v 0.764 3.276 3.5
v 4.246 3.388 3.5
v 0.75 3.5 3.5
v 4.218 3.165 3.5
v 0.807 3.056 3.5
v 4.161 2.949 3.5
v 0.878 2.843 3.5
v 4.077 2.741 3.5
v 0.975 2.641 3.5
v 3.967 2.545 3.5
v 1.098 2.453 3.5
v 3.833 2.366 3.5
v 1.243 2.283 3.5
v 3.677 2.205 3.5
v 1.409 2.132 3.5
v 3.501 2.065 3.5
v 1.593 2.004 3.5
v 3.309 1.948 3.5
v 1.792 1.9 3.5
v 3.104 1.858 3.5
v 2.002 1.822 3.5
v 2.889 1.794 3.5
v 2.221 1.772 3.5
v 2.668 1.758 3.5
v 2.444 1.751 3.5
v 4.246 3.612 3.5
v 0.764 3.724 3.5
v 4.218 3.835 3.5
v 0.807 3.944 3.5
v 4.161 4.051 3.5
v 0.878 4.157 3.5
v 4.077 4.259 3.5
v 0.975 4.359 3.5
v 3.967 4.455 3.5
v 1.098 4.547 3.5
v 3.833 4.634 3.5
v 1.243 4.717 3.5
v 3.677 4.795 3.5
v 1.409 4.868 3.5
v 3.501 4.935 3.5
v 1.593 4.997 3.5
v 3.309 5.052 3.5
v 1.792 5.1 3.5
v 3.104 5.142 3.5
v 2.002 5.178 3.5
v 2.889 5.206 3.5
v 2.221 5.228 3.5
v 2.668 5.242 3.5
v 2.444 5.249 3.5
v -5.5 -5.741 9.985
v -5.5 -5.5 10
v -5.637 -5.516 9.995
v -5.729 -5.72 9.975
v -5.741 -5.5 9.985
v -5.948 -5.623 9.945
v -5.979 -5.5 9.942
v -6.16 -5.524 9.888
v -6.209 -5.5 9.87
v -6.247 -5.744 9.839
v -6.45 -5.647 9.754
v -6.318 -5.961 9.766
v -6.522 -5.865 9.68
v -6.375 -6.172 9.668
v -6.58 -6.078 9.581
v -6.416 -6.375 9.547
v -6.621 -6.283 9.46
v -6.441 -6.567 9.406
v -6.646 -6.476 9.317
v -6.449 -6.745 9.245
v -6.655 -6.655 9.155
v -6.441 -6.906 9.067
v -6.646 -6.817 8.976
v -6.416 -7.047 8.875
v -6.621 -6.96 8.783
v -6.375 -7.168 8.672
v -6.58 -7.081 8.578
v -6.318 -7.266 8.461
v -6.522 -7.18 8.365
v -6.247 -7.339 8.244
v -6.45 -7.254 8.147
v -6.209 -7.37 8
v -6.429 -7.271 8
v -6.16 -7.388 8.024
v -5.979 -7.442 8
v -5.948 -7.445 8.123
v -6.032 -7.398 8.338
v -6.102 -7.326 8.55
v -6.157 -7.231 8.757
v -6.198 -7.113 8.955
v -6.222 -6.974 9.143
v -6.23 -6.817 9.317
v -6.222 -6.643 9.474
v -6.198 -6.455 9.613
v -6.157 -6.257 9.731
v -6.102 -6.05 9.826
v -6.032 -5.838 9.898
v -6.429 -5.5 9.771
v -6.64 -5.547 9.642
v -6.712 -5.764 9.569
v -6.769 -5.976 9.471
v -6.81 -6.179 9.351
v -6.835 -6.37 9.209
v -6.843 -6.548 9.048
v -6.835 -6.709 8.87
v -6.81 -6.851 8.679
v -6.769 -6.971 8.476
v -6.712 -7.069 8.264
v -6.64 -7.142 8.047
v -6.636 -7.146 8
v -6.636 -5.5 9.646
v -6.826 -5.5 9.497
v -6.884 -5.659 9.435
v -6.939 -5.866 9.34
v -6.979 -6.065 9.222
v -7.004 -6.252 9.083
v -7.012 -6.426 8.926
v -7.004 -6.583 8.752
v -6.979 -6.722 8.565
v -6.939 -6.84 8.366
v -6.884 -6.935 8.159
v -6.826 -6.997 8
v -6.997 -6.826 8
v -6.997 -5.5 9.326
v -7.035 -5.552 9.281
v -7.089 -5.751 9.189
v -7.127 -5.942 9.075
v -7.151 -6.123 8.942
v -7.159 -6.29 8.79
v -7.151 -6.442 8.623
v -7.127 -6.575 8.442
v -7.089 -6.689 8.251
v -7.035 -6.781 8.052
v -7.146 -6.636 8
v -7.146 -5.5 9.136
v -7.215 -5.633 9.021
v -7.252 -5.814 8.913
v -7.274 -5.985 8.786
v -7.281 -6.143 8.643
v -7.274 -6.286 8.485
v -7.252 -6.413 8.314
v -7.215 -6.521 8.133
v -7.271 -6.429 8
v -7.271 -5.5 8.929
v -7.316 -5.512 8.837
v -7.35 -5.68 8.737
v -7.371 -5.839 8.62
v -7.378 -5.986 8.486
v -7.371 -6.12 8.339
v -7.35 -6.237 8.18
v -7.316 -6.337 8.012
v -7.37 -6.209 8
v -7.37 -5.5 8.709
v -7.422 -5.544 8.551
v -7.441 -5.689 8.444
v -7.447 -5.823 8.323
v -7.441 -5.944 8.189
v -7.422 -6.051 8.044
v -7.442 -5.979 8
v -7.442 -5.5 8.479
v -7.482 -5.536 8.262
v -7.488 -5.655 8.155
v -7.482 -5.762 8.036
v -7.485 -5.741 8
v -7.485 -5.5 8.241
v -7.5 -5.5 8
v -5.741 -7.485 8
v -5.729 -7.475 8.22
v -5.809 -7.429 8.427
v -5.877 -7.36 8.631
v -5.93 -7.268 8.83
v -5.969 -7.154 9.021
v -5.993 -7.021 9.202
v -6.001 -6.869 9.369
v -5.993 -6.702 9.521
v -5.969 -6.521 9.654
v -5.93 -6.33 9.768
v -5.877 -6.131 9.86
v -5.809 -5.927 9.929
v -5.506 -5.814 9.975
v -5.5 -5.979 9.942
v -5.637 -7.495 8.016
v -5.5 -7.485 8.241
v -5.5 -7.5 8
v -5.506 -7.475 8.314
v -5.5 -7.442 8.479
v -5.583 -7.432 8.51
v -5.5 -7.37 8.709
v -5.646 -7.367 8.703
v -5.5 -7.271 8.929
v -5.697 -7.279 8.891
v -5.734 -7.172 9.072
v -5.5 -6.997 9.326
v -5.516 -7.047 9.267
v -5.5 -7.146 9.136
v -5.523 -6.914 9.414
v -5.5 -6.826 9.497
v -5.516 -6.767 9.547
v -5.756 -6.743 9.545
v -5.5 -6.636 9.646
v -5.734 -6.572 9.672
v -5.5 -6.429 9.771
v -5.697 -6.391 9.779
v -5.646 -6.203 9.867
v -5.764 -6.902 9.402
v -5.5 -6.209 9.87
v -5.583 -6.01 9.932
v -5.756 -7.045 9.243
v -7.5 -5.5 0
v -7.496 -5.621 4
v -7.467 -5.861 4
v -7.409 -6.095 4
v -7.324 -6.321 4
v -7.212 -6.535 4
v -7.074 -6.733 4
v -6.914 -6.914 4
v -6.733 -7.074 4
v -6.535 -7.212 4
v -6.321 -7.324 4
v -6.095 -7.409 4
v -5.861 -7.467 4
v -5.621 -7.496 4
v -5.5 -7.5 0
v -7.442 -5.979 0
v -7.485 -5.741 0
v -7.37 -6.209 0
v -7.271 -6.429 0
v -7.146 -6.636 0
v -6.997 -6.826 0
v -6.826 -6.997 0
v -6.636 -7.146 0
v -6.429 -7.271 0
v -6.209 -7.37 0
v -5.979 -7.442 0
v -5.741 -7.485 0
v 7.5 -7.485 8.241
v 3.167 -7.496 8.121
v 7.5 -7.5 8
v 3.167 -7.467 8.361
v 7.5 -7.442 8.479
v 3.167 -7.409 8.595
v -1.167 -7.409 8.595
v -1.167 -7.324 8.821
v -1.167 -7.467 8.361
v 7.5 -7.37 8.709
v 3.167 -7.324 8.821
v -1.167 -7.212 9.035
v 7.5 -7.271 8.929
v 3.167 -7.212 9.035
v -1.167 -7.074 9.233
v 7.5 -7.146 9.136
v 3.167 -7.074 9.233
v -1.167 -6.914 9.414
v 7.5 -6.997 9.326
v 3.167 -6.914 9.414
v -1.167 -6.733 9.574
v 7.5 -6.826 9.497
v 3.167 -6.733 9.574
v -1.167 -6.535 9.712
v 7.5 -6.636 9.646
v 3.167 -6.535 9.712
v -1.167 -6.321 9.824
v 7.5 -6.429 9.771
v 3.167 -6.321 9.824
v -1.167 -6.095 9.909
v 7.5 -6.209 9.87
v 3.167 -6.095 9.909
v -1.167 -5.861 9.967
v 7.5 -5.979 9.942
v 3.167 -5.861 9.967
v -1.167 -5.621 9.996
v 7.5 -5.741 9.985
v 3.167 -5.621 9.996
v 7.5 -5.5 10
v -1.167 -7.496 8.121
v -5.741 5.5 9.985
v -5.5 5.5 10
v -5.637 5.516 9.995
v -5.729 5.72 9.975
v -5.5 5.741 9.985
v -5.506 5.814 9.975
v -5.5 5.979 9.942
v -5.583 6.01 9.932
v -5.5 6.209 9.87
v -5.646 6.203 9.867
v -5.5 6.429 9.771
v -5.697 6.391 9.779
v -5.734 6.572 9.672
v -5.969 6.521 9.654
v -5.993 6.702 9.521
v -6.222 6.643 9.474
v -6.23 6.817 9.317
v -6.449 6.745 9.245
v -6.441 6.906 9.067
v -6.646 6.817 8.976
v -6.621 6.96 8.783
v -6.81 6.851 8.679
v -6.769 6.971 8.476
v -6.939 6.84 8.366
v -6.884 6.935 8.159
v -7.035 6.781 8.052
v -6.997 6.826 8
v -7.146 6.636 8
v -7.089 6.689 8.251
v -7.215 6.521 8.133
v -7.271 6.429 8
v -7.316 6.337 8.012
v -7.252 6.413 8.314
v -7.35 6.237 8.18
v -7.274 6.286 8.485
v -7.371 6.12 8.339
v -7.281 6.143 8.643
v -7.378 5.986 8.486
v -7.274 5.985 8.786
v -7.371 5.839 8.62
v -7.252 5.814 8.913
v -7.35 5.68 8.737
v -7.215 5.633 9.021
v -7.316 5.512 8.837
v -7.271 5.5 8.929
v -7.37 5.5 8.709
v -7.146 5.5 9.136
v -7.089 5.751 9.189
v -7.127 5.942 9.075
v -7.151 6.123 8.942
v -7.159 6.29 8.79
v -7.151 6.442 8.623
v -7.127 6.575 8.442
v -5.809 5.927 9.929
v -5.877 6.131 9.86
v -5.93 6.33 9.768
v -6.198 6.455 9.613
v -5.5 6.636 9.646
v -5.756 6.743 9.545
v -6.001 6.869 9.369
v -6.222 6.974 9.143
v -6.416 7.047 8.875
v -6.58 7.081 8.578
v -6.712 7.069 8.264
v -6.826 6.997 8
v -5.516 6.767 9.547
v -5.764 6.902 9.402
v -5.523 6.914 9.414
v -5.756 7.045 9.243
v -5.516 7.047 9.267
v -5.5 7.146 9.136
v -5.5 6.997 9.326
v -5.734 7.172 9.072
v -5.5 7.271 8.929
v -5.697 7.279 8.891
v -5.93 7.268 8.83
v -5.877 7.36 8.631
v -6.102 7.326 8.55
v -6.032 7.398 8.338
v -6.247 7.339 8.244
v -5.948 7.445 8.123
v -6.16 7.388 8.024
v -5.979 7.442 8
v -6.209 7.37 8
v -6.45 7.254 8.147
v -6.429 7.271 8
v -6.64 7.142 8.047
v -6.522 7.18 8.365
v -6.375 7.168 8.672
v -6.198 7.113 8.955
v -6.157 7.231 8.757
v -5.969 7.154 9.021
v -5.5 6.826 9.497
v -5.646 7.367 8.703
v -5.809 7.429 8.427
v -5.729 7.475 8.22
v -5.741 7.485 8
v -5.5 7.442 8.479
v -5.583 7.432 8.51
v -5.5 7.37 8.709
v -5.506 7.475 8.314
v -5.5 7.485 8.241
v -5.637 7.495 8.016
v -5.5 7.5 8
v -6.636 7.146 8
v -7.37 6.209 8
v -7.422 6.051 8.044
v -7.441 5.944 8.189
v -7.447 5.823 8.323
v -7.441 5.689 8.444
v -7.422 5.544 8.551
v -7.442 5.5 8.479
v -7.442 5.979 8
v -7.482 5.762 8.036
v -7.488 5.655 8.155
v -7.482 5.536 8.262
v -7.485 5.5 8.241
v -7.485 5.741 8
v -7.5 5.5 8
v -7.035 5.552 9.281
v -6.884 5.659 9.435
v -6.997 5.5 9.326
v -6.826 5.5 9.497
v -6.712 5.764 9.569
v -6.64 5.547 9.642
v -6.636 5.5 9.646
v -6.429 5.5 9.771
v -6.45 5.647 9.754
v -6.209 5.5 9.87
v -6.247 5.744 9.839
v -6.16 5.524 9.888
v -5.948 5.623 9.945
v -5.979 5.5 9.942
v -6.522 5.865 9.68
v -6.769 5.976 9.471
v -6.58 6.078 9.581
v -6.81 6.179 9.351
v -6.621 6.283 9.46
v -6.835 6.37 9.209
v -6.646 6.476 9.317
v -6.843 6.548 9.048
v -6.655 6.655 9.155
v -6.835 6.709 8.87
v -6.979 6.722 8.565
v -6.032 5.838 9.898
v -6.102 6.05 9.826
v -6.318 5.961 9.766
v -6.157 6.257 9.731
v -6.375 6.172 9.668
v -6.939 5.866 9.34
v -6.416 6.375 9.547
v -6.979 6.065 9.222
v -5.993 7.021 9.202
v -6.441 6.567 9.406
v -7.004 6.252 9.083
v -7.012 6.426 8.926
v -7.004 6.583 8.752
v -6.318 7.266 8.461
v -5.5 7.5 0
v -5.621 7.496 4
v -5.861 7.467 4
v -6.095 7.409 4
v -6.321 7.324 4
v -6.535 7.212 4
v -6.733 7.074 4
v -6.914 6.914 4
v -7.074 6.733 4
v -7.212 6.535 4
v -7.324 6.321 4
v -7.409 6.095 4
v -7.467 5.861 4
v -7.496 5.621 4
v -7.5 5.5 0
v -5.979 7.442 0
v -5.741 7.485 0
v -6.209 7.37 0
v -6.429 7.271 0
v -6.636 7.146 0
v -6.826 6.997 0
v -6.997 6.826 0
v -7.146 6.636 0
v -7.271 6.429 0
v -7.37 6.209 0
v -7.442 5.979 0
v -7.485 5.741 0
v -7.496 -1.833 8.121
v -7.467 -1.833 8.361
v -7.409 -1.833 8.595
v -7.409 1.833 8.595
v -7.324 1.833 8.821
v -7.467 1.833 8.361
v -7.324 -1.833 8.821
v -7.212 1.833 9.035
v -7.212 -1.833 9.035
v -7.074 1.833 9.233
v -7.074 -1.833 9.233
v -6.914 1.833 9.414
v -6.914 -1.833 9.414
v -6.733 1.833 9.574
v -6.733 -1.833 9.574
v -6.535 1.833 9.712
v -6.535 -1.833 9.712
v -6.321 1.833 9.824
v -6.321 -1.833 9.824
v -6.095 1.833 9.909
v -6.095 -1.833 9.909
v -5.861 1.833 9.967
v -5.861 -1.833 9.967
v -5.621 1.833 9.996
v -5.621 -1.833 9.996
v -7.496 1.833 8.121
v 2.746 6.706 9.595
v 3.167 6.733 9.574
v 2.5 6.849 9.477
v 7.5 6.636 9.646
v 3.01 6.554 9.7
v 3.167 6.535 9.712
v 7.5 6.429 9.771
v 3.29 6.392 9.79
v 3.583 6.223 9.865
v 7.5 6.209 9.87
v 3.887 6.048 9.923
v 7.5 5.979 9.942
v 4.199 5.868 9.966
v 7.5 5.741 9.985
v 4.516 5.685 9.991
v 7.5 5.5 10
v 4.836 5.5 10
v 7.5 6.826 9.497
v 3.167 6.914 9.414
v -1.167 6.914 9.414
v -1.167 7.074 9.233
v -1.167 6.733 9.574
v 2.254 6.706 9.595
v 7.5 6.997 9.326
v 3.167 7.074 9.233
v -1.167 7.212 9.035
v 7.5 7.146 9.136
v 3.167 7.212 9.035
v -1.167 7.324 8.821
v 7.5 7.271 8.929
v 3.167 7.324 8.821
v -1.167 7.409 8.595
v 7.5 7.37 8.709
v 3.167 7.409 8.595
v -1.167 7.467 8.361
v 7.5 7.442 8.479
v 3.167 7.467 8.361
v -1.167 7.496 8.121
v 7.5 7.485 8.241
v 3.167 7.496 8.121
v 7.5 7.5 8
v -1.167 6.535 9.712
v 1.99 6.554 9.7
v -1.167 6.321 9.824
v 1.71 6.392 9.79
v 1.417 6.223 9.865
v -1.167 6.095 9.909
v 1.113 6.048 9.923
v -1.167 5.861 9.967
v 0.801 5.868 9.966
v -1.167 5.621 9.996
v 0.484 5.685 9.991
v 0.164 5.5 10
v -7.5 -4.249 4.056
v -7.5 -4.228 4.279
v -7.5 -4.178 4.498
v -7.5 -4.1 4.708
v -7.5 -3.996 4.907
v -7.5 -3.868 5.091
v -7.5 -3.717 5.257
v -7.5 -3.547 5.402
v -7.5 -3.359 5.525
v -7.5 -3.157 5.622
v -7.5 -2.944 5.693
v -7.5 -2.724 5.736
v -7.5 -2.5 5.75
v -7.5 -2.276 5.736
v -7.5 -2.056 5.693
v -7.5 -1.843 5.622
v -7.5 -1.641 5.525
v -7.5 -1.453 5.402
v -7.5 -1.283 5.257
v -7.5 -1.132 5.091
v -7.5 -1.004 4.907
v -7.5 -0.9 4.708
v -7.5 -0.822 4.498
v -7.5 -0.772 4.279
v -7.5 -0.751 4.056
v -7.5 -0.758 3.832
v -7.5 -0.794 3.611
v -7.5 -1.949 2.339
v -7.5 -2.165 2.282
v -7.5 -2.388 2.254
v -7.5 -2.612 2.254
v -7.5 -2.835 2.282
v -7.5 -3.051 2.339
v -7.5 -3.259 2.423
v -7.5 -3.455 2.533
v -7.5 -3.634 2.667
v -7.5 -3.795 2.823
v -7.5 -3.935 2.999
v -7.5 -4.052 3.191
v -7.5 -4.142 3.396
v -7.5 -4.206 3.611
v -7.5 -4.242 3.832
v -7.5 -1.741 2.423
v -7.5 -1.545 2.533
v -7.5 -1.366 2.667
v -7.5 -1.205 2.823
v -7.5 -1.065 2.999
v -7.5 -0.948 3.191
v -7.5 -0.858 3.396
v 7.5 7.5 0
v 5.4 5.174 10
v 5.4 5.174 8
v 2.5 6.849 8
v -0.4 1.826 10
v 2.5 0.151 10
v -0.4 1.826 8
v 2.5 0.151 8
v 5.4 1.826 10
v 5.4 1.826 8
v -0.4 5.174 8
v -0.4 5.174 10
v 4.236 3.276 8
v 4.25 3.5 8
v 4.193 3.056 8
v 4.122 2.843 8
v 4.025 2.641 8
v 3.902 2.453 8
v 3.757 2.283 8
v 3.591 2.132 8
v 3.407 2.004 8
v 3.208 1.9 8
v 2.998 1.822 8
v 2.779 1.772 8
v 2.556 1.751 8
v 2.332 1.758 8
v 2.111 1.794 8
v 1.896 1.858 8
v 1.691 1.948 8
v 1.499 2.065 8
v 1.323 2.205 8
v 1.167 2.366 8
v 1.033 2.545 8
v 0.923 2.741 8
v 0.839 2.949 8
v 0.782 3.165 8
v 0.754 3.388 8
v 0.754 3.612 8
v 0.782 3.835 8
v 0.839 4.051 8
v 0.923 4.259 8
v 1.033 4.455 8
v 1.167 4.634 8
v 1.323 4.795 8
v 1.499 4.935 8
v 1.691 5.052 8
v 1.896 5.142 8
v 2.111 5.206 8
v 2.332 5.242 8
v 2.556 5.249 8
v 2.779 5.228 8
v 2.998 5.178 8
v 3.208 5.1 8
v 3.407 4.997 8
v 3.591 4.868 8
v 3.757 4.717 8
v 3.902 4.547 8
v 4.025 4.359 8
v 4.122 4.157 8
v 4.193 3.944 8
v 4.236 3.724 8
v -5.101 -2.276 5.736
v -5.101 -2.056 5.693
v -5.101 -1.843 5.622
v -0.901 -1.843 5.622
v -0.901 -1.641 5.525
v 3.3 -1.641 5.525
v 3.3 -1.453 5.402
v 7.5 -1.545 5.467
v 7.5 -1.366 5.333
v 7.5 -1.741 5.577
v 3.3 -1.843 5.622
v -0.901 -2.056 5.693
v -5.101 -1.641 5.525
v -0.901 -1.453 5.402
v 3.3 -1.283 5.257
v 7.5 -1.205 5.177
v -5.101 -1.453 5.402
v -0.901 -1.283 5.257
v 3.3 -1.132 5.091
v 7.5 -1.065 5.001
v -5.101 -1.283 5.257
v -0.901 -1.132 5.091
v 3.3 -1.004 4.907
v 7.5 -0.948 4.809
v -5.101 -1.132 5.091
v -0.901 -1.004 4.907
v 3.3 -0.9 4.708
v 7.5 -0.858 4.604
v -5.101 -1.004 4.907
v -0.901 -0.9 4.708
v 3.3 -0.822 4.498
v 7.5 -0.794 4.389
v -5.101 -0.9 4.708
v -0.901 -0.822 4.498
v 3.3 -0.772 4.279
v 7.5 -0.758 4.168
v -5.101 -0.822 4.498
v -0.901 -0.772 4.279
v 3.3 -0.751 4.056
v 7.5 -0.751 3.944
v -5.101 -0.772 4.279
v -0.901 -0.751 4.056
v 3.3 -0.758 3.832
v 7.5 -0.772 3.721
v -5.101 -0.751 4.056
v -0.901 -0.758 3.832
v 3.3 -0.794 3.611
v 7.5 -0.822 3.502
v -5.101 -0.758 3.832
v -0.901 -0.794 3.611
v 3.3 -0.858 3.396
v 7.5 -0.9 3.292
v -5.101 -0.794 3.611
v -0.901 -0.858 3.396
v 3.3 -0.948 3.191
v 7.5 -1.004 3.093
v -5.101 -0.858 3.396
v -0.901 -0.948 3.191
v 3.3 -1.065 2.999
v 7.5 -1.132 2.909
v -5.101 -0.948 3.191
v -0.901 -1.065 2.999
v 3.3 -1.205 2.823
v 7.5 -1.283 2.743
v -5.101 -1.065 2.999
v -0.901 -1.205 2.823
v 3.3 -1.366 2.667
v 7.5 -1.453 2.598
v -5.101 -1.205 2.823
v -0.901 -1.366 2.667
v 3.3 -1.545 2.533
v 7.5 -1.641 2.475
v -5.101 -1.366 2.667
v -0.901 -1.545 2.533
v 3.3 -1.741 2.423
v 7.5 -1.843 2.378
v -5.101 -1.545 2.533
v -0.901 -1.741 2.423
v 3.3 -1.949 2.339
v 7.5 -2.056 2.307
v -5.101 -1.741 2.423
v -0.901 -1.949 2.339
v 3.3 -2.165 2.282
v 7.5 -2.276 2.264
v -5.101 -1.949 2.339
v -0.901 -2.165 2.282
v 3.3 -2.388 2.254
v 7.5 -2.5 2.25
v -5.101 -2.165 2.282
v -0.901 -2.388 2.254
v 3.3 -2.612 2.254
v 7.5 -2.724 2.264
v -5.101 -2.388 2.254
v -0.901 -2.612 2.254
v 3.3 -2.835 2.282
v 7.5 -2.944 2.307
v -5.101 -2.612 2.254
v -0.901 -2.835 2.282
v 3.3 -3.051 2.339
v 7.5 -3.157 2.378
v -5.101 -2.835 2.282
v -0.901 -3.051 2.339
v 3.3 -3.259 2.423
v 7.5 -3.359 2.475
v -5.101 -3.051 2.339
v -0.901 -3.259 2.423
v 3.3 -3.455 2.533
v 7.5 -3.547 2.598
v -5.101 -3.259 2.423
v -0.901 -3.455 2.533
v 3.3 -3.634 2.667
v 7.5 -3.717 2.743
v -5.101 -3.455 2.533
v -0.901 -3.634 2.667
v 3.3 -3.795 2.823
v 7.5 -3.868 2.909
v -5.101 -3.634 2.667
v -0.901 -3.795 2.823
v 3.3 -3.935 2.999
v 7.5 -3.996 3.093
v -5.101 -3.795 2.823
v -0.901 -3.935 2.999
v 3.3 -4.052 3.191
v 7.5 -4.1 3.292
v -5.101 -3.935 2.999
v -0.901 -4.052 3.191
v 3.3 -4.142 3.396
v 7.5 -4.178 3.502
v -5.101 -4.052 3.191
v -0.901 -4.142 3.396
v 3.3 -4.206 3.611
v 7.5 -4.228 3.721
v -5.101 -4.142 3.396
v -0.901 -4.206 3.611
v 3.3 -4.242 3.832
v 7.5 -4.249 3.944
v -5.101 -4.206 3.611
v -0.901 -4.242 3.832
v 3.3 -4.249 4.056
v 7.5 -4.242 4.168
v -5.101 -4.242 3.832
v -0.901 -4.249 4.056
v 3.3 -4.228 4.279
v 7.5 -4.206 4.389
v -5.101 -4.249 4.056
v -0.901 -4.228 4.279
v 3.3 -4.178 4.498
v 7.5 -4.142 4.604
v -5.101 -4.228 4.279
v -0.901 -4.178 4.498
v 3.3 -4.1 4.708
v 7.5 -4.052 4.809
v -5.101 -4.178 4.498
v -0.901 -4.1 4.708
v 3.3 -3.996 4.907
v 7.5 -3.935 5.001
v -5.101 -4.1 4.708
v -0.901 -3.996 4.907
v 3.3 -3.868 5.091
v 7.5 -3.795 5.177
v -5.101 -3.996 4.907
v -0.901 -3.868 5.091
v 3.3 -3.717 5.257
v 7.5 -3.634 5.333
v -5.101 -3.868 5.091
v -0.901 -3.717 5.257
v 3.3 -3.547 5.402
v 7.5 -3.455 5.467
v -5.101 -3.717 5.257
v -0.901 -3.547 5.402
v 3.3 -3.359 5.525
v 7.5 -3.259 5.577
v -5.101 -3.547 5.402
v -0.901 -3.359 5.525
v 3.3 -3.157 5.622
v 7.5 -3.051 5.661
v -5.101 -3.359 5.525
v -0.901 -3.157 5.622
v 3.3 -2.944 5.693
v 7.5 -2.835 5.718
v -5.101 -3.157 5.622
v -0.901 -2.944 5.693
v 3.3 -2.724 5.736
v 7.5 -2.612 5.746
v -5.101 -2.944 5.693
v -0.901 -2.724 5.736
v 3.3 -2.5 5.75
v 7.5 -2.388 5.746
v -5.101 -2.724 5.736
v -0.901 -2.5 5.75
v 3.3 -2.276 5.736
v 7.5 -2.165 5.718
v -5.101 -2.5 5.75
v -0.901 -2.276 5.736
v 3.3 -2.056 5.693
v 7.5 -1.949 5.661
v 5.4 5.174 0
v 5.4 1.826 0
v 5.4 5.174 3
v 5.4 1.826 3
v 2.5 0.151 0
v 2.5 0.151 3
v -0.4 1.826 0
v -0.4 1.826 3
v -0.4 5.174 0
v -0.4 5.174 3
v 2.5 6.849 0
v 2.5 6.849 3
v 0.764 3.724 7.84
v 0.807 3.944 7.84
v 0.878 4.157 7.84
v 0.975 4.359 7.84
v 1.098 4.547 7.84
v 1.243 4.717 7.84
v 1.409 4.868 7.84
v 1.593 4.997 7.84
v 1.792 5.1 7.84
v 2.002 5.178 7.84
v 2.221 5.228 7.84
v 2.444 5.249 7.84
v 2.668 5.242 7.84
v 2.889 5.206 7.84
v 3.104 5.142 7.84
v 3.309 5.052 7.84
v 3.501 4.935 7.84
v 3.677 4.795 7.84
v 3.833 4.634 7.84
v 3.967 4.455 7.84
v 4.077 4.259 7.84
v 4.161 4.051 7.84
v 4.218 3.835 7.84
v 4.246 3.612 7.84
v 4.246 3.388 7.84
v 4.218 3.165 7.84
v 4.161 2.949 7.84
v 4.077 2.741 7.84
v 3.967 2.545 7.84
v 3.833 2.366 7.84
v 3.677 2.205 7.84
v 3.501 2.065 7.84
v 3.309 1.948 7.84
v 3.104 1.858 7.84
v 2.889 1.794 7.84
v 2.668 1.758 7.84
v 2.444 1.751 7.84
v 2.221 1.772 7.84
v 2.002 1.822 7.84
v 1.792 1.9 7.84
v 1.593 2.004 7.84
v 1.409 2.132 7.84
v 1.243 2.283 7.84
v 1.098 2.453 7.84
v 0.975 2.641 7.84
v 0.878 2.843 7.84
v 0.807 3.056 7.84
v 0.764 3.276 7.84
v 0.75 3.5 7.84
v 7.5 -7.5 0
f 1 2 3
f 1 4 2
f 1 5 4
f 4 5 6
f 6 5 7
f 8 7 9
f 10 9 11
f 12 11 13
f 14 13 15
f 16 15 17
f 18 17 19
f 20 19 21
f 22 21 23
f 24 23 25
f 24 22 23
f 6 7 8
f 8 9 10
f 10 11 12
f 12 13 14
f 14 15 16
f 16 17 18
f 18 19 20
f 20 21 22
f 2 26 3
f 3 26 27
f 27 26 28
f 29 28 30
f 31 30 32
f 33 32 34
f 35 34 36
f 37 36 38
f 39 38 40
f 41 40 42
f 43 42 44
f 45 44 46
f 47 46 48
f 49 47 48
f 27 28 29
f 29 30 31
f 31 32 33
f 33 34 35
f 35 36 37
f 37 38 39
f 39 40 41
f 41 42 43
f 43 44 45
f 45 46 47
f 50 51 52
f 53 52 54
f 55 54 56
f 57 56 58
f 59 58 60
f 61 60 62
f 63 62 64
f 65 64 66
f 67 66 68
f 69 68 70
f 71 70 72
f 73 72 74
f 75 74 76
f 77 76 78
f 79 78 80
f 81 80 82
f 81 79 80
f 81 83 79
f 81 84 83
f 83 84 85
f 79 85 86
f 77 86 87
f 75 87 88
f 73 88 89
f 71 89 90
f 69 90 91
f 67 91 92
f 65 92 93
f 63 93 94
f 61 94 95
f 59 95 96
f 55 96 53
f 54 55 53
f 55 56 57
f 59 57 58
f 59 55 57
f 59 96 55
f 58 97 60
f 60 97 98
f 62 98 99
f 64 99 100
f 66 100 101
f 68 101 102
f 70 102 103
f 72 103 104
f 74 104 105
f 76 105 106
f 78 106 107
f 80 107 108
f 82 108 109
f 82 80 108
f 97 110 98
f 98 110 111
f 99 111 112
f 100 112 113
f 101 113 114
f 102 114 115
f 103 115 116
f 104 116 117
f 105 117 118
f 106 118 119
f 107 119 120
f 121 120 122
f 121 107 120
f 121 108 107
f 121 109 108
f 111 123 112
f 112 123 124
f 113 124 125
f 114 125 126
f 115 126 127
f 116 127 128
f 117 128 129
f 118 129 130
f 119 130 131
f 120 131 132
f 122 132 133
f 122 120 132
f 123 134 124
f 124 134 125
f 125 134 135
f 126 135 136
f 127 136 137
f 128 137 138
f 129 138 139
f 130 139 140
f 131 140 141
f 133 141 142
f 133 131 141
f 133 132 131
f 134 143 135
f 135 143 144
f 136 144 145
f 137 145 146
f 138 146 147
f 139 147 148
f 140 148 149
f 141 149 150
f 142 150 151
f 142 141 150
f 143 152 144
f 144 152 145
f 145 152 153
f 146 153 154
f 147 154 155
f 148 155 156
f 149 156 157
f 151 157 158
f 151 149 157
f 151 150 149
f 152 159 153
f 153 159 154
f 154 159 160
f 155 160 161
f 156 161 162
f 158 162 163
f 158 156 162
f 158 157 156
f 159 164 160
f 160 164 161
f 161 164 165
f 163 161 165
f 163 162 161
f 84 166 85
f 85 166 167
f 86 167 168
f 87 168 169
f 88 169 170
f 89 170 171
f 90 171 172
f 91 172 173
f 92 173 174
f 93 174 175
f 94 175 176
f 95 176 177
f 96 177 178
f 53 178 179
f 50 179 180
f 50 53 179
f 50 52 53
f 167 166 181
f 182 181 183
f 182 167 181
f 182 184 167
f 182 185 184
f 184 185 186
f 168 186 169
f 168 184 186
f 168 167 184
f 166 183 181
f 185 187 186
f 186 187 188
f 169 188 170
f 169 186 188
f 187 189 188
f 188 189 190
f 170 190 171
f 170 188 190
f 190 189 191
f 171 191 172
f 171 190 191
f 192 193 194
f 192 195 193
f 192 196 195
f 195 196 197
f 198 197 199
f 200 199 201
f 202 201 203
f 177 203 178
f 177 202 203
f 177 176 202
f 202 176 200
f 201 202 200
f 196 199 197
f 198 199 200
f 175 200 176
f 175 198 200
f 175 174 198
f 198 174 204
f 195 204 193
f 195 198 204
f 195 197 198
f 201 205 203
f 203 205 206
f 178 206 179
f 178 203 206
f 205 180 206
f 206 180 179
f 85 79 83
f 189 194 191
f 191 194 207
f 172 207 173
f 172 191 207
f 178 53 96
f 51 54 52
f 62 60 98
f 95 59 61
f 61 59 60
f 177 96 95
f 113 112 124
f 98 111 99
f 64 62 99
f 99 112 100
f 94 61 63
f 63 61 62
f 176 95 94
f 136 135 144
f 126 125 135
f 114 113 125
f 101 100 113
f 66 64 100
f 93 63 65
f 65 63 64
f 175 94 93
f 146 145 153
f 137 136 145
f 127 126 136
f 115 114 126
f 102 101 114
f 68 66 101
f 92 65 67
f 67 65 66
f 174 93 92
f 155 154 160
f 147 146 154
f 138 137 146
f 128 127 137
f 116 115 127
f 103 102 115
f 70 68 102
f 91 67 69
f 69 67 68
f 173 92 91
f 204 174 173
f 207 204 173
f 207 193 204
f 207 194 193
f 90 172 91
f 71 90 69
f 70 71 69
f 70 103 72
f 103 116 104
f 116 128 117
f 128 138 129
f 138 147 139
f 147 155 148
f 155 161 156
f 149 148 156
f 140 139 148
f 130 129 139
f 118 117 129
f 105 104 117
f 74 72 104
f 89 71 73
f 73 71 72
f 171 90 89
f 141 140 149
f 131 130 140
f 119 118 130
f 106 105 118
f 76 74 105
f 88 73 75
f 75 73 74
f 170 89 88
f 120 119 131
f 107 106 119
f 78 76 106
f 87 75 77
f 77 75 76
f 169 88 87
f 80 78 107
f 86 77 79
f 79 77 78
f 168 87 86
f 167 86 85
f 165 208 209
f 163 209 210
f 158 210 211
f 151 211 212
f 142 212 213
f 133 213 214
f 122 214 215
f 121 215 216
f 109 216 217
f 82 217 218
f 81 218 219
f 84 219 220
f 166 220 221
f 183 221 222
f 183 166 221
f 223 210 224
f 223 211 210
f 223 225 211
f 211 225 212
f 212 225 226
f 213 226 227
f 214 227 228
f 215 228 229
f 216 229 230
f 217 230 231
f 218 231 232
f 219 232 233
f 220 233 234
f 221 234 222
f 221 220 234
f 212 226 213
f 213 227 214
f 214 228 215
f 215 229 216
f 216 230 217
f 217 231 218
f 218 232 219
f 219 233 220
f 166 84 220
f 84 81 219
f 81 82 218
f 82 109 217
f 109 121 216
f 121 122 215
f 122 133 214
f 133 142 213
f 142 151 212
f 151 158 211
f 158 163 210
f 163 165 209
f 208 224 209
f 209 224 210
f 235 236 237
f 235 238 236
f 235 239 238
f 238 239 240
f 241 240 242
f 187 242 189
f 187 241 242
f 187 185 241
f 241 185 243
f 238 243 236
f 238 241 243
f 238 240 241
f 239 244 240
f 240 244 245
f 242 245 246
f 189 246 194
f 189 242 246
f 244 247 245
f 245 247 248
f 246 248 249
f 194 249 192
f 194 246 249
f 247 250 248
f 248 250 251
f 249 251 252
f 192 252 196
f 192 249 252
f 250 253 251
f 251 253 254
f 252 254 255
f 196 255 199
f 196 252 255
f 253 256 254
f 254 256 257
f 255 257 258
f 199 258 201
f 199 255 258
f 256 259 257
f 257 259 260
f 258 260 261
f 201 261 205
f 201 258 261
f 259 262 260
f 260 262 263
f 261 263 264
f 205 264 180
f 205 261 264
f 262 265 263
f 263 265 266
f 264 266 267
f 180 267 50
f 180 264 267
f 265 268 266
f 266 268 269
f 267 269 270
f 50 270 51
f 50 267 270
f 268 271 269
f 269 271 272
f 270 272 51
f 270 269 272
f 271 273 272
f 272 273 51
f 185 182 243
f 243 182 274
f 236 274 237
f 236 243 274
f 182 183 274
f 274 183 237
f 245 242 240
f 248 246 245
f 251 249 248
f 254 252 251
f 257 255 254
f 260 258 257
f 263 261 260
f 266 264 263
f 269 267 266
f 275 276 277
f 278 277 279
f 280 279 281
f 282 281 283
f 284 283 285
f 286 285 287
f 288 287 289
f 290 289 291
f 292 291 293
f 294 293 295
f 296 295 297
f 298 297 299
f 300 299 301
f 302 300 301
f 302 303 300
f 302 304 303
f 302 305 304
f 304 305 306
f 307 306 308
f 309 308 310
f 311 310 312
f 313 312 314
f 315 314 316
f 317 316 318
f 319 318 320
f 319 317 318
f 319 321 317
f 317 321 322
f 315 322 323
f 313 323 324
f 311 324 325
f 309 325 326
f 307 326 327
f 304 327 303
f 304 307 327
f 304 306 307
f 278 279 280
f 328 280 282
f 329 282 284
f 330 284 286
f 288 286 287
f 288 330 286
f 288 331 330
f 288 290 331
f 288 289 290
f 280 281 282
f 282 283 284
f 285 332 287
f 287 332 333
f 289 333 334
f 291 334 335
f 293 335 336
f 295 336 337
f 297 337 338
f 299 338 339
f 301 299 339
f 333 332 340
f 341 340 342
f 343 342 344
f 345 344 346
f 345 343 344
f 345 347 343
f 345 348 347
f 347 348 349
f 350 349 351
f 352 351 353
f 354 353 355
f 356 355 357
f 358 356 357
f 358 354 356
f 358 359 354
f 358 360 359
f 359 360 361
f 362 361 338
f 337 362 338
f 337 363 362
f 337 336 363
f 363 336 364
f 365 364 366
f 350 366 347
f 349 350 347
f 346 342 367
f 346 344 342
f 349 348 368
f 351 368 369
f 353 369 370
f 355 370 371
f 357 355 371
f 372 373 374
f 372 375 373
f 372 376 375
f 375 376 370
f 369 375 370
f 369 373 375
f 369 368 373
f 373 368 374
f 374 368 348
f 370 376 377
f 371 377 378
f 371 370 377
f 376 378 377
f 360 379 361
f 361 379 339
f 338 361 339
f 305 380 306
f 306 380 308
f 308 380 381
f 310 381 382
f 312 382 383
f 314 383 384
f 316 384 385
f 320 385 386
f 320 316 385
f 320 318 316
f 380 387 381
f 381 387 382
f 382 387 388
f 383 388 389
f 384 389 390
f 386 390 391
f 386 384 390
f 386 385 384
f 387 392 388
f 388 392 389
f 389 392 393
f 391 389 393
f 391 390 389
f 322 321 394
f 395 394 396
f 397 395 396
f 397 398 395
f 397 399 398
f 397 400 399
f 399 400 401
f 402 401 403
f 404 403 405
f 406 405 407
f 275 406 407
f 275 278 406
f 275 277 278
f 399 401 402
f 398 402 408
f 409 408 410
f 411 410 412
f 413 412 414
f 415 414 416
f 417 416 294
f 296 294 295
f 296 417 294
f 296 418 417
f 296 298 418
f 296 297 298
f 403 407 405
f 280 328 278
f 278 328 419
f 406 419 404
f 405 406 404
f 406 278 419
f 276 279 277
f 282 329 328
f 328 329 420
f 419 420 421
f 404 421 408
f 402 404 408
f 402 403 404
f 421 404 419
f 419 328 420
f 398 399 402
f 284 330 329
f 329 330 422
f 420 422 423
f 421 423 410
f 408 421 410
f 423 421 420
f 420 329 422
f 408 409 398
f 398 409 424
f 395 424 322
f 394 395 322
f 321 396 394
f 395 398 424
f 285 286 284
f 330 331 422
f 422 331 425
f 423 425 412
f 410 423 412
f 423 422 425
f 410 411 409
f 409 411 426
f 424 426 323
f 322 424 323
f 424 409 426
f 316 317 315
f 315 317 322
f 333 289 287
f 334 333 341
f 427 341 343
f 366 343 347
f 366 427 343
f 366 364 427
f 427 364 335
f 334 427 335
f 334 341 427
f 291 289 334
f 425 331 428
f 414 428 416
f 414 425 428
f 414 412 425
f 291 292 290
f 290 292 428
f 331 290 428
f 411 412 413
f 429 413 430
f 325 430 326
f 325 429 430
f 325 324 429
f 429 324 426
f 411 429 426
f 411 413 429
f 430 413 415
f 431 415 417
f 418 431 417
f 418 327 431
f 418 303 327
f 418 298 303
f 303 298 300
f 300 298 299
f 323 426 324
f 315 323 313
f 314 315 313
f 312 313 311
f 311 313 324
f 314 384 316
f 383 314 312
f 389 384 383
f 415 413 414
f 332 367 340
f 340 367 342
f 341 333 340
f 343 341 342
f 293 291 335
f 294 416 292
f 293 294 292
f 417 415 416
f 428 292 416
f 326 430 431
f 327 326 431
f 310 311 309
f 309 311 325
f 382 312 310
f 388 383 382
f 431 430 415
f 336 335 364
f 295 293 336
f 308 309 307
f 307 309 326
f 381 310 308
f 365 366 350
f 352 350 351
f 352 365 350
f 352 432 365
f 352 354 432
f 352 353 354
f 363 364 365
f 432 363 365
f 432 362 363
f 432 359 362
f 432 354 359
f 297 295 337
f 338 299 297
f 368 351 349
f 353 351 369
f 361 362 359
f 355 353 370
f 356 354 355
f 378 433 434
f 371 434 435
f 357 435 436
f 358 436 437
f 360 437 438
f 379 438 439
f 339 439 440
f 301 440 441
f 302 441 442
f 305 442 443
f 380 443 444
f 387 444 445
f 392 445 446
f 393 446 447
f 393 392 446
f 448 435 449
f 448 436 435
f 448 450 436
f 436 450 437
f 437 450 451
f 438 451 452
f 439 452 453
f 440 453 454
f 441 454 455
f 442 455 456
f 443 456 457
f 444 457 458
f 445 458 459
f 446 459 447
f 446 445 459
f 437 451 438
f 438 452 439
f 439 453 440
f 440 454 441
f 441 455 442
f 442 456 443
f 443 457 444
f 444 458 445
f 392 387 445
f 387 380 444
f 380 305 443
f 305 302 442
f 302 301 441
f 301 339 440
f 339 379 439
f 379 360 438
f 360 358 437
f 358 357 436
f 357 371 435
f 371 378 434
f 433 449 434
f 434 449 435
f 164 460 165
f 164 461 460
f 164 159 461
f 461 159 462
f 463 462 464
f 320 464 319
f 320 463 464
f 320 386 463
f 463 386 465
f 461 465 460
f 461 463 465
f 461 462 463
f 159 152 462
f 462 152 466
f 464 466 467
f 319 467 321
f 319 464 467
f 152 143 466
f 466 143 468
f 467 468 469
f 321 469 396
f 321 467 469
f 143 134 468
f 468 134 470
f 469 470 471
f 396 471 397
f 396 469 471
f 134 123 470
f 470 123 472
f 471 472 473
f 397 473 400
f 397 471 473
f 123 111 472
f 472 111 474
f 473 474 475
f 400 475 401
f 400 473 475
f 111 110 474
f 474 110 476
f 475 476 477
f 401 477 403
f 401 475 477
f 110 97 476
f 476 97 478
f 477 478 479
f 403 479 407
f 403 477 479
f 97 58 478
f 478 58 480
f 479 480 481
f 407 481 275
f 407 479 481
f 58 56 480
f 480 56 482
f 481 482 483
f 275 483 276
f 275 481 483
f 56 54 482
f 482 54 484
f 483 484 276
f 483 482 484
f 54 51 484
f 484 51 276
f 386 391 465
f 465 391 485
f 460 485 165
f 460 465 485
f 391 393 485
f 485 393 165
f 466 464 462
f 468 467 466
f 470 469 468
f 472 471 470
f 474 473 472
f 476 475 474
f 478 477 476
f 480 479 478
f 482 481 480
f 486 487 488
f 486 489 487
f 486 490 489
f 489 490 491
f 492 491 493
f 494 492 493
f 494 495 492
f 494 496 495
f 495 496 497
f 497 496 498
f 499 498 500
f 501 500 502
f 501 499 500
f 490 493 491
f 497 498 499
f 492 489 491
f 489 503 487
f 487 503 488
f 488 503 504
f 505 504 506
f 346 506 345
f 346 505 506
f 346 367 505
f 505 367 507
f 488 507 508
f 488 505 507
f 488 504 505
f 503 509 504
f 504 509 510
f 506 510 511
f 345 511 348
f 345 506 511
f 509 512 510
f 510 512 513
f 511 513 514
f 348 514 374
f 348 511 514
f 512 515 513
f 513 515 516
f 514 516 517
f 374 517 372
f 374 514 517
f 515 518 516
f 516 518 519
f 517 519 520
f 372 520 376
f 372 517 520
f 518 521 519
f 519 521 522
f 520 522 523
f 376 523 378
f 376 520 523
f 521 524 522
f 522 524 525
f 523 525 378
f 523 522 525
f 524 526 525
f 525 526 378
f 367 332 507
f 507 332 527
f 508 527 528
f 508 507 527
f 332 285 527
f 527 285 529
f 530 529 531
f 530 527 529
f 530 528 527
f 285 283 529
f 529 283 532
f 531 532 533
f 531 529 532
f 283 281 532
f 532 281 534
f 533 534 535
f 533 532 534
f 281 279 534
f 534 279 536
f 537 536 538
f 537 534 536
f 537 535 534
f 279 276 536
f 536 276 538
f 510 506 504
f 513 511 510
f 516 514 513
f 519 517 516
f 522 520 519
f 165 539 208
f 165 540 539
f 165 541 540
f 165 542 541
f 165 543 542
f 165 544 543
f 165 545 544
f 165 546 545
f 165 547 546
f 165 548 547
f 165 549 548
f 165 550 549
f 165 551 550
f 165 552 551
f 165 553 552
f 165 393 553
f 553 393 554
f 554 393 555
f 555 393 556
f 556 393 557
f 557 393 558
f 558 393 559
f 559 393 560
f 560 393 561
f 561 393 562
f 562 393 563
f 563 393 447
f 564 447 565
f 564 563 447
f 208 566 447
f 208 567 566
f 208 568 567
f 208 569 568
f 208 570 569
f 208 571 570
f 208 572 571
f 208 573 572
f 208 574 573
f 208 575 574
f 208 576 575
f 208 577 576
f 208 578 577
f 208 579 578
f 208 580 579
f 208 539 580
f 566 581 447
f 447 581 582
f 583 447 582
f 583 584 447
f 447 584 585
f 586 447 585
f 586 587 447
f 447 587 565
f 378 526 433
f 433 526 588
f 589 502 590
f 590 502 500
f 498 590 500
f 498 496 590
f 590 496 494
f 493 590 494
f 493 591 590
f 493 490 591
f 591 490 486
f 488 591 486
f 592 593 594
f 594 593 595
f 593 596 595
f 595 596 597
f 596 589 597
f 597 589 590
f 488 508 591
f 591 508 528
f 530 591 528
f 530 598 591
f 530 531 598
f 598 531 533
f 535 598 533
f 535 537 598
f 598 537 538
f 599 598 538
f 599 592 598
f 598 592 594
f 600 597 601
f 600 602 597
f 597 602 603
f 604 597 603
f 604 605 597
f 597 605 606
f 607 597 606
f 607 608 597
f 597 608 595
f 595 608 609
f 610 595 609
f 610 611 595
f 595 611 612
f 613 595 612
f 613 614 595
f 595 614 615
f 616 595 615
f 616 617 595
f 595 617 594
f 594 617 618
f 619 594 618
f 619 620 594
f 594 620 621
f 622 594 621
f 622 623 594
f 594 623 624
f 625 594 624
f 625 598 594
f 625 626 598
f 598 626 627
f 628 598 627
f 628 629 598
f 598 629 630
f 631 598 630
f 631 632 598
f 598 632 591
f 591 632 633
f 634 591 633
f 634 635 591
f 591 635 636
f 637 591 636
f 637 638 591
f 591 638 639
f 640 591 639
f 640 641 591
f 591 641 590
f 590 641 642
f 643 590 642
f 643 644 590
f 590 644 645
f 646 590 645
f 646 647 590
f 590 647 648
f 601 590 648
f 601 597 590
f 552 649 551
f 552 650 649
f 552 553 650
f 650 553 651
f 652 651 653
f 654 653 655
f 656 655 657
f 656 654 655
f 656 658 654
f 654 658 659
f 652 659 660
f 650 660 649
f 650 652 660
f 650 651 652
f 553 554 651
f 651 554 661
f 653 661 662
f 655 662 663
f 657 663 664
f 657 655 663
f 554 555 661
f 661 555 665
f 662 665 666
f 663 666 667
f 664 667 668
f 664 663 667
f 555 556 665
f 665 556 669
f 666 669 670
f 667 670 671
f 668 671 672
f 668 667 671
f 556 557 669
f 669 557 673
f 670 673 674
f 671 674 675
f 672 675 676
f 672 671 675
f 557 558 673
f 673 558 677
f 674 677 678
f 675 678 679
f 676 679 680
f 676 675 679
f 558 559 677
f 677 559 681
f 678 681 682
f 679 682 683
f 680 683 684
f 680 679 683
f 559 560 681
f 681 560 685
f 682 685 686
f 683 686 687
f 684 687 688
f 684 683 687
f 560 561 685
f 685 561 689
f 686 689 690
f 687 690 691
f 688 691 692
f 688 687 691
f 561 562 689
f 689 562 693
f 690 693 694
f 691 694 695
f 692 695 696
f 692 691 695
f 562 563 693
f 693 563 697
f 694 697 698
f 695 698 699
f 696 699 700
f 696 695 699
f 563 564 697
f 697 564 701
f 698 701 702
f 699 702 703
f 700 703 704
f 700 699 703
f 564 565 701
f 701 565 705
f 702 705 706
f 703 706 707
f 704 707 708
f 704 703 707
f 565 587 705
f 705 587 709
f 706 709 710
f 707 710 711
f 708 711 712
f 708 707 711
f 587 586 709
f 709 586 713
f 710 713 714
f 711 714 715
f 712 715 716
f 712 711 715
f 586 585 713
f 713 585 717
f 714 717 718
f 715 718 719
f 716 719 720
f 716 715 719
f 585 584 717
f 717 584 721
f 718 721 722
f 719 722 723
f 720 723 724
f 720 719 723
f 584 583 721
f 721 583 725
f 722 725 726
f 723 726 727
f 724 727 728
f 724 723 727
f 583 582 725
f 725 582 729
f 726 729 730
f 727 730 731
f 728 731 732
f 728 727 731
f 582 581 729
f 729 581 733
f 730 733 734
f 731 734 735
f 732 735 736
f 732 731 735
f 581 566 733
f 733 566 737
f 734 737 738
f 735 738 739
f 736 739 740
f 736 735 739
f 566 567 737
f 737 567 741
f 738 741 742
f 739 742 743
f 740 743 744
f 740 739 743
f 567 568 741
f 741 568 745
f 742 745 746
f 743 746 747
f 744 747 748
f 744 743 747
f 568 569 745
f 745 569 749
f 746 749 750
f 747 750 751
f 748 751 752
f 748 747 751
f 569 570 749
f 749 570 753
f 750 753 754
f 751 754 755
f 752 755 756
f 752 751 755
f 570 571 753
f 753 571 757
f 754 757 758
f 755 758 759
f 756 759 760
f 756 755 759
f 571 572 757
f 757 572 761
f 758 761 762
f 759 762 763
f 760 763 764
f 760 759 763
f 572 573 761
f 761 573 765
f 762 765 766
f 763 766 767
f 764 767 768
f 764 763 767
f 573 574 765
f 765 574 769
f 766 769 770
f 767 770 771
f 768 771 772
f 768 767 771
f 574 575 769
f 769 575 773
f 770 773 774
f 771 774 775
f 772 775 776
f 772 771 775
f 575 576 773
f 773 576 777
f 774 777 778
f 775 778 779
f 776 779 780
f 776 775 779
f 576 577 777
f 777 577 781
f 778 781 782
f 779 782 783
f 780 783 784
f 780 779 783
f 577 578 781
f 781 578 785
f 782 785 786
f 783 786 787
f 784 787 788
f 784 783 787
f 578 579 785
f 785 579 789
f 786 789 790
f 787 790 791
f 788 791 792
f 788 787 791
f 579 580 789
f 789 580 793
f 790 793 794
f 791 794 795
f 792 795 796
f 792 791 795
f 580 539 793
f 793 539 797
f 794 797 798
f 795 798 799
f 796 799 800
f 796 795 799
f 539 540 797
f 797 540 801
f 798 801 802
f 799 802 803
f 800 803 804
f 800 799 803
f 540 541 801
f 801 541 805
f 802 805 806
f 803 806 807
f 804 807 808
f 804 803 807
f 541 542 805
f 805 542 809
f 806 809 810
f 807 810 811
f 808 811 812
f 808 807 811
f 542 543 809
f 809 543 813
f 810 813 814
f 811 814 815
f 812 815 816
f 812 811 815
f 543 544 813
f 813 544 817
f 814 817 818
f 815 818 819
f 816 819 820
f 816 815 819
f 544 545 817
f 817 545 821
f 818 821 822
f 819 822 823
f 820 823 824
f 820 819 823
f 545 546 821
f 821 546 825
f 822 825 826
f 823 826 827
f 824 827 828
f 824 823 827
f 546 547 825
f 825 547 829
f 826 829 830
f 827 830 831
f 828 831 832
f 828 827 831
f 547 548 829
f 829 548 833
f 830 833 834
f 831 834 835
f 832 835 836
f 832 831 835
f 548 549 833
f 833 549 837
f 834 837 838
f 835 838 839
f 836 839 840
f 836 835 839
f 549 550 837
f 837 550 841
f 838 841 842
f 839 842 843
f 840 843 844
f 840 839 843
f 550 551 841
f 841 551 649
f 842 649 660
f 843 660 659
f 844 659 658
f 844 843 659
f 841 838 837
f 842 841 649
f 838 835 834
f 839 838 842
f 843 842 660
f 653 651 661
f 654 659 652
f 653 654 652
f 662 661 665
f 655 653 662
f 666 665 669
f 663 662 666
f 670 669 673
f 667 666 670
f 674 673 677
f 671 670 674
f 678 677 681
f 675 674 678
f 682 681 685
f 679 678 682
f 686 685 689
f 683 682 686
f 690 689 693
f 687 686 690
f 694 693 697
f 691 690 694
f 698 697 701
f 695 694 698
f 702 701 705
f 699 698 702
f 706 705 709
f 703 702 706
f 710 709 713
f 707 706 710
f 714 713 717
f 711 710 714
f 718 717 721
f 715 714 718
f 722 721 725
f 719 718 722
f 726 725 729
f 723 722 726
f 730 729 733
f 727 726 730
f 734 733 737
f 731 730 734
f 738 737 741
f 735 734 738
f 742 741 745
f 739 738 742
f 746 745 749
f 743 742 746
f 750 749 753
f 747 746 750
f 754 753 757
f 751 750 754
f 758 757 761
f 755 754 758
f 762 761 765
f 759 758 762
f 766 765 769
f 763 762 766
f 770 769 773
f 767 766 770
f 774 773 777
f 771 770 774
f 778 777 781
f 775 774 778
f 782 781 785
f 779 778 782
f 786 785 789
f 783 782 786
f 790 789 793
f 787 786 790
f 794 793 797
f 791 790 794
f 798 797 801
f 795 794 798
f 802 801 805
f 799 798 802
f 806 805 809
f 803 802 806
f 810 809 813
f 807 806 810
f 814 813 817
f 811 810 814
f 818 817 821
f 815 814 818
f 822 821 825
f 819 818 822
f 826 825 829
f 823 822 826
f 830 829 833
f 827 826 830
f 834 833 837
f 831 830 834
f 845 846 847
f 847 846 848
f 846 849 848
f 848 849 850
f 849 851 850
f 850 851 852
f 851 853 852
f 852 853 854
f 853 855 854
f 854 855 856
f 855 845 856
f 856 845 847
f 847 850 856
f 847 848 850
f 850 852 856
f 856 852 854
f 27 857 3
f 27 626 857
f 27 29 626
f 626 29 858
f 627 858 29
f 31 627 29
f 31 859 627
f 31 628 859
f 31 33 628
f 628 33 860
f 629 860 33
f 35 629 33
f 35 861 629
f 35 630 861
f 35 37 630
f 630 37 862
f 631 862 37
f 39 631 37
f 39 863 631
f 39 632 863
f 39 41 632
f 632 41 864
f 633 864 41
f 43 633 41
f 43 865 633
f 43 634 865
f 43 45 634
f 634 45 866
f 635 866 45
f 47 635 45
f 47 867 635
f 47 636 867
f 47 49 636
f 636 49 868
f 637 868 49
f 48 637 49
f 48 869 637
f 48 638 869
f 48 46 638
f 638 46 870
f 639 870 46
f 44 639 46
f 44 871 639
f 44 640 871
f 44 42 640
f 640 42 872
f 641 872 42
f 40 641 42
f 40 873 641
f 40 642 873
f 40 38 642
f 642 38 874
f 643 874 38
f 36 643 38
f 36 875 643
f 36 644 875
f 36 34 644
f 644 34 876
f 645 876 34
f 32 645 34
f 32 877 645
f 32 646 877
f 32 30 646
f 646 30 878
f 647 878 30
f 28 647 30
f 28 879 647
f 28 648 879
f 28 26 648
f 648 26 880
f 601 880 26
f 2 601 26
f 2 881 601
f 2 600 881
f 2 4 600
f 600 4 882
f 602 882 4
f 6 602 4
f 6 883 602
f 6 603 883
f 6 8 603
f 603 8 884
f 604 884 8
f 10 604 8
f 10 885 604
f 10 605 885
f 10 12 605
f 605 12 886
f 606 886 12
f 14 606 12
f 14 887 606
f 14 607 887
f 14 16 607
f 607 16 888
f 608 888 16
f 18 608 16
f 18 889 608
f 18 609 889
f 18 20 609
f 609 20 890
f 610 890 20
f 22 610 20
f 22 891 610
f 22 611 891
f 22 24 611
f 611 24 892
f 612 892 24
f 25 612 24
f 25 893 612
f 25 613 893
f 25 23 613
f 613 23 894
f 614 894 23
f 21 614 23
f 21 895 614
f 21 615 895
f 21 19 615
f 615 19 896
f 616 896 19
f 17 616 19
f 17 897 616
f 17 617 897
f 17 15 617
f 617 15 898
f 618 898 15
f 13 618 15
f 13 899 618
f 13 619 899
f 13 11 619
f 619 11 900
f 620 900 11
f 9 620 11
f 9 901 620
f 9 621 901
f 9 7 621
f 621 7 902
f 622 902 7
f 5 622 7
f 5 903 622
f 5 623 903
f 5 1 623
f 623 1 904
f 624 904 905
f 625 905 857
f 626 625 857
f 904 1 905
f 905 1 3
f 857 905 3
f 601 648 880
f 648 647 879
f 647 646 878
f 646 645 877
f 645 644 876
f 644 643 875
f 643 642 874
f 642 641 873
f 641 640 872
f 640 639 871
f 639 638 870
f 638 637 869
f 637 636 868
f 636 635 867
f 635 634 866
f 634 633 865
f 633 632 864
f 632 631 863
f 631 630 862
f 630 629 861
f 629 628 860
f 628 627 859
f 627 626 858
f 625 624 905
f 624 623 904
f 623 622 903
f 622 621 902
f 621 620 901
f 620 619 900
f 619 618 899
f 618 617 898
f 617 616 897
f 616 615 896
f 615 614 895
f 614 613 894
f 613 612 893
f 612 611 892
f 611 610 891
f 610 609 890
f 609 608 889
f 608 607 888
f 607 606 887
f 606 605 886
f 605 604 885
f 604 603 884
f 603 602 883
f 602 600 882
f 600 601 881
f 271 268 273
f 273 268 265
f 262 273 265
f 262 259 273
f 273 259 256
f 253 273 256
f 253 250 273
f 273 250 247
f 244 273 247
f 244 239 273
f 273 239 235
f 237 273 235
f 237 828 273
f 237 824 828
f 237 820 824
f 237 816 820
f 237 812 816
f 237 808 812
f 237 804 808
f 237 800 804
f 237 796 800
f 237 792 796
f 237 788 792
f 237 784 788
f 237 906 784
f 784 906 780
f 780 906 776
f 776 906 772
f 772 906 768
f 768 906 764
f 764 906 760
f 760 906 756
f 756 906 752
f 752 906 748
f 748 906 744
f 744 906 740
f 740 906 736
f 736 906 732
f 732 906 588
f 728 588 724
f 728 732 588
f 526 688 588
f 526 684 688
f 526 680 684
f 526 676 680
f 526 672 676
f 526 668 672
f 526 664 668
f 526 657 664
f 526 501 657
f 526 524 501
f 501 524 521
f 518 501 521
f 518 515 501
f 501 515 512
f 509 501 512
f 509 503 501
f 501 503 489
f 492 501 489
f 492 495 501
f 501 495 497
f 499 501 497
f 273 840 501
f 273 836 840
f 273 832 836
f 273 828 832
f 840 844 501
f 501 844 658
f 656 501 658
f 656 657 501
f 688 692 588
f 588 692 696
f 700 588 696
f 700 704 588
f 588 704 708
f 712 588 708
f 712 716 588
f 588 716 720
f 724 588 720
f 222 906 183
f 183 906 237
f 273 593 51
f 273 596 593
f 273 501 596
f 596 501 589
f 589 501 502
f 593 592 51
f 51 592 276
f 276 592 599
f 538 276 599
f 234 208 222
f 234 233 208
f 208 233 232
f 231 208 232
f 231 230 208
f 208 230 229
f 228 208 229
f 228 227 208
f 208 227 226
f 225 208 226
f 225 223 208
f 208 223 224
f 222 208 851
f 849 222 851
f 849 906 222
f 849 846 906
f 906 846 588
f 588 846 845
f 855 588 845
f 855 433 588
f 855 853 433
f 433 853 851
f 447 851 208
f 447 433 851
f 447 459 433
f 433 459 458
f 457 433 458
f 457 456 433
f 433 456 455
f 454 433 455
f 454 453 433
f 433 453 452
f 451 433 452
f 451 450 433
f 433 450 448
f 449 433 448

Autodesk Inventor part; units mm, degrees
ref_plane "YZ Plane" through (0, 0, 0) normal (1, 0, 0) x (0, 1, 0)
ref_plane "XZ Plane" through (0, 0, 0) normal (0, 1, 0) x (-1, 0, 0)
ref_plane "XY Plane" through (0, 0, 0) normal (0, 0, 1) x (1, 0, 0)
sketch "Szkic1" plane through (0, 0, 0) normal (0, 0, 1) x (1, 0, 0)
  line L0 (-7.5, -7.5) -> (7.5, -7.5)
  line L1 (7.5, -7.5) -> (7.5, 7.5)
  line L2 (7.5, 7.5) -> (-7.5, 7.5)
  line L3 (-7.5, 7.5) -> (-7.5, -7.5)
  line L4 (-7.5, -7.5) -> (7.5, 7.5) construction
  line L5 (7.5, -7.5) -> (-7.5, 7.5) construction
  line L6 (7.5, 7.5) -> (2.5, 7.5) construction
  line L7 (2.5, 7.5) -> (2.5, 3.5) construction
  line L8 (2.5, 3.5) -> (7.5, 3.5) construction
  line L9 (7.5, 3.5) -> (7.5, 7.5) construction
  line L10 (2.5, 6.8486) -> (5.4, 5.1743)
  line L11 (5.4, 5.1743) -> (5.4, 1.8257)
  line L12 (5.4, 1.8257) -> (2.5, 0.1514)
  line L13 (2.5, 0.1514) -> (-0.4, 1.8257)
  line L14 (-0.4, 1.8257) -> (-0.4, 5.1743)
  line L15 (-0.4, 5.1743) -> (2.5, 6.8486)
  point P0 (0, 0)
  dimension "d0" = 15
  dimension "d1" = 15
  dimension "d4" = 5
  dimension "d5" = 4
  dimension "d8" = 5.8
extrude "Wyciągnięcie proste1" add sketch "Szkic1" along normal blind 10 contours L3 L2 L1 L0 | L10 L11 L12 L13 L14 L15
sketch "Szkic2" plane through (7.5, -7.5, 0) normal (1, 0, 0) x (0, 0, -1)
  line L0 (0, 0) -> (-4, 0) construction
  line L1 (-4, 0) -> (-4, 5) construction
  line L2 (-4, 5) -> (0, 5) construction
  line L3 (0, 5) -> (0, 0) construction
  point P0 (0, 7.5)
  dimension "d6" = 4
  dimension "d7" = 5
hole "Otwór1" at (2.5, 3.5, 0) direction (0, 0, 1) diameter 3.5 end through all
extrude "Wyciągnięcie proste2" cut sketch "Szkic1" along normal blind 3 contours L10 L11 L12 L13 L14 L15
hole "Otwór2" at (7.5, -2.5, 4) direction (-1, 0, 0) diameter 3.5 end through all
sketch "Szkic3" plane through (0, 0, 10) normal (0, 0, 1) x (1, 0, 0)
  circle A0 centre (2.5, 3.5) radius 1.75 projected
  line L0 (-0.4, 5.1743) -> (-0.4, 1.8257) projected
  line L1 (2.5, 6.8486) -> (-0.4, 5.1743) projected
  line L2 (2.5, 6.8486) -> (5.4, 5.1743) projected
  line L3 (5.4, 1.8257) -> (5.4, 5.1743) projected
  line L4 (2.5, 0.1514) -> (5.4, 1.8257) projected
  line L5 (2.5, 0.1514) -> (-0.4, 1.8257) projected
  point P0 (0, 0)
extrude "Wyciągnięcie proste3" cut sketch "Szkic3" against normal blind 2
fillet "Zaokrąglenie1" radius 2 5 edges at (-7.5, 7.5, 5) (-7.5, -7.5, 5) (-7.5, 0, 10) (0, 7.5, 10) (0, -7.5, 10)
sketch "Szkic4" plane through (0, 0, 3) normal (0, 0, -1) x (-1, 0, 0)
  circle A0 centre (-2.5, 3.5) radius 1.75 projected
  point P0 (0, 0)
extrude "Wyciągnięcie proste4" add sketch "Szkic4" against normal blind 0.5
properties part number "Z_endstop_regulator"
